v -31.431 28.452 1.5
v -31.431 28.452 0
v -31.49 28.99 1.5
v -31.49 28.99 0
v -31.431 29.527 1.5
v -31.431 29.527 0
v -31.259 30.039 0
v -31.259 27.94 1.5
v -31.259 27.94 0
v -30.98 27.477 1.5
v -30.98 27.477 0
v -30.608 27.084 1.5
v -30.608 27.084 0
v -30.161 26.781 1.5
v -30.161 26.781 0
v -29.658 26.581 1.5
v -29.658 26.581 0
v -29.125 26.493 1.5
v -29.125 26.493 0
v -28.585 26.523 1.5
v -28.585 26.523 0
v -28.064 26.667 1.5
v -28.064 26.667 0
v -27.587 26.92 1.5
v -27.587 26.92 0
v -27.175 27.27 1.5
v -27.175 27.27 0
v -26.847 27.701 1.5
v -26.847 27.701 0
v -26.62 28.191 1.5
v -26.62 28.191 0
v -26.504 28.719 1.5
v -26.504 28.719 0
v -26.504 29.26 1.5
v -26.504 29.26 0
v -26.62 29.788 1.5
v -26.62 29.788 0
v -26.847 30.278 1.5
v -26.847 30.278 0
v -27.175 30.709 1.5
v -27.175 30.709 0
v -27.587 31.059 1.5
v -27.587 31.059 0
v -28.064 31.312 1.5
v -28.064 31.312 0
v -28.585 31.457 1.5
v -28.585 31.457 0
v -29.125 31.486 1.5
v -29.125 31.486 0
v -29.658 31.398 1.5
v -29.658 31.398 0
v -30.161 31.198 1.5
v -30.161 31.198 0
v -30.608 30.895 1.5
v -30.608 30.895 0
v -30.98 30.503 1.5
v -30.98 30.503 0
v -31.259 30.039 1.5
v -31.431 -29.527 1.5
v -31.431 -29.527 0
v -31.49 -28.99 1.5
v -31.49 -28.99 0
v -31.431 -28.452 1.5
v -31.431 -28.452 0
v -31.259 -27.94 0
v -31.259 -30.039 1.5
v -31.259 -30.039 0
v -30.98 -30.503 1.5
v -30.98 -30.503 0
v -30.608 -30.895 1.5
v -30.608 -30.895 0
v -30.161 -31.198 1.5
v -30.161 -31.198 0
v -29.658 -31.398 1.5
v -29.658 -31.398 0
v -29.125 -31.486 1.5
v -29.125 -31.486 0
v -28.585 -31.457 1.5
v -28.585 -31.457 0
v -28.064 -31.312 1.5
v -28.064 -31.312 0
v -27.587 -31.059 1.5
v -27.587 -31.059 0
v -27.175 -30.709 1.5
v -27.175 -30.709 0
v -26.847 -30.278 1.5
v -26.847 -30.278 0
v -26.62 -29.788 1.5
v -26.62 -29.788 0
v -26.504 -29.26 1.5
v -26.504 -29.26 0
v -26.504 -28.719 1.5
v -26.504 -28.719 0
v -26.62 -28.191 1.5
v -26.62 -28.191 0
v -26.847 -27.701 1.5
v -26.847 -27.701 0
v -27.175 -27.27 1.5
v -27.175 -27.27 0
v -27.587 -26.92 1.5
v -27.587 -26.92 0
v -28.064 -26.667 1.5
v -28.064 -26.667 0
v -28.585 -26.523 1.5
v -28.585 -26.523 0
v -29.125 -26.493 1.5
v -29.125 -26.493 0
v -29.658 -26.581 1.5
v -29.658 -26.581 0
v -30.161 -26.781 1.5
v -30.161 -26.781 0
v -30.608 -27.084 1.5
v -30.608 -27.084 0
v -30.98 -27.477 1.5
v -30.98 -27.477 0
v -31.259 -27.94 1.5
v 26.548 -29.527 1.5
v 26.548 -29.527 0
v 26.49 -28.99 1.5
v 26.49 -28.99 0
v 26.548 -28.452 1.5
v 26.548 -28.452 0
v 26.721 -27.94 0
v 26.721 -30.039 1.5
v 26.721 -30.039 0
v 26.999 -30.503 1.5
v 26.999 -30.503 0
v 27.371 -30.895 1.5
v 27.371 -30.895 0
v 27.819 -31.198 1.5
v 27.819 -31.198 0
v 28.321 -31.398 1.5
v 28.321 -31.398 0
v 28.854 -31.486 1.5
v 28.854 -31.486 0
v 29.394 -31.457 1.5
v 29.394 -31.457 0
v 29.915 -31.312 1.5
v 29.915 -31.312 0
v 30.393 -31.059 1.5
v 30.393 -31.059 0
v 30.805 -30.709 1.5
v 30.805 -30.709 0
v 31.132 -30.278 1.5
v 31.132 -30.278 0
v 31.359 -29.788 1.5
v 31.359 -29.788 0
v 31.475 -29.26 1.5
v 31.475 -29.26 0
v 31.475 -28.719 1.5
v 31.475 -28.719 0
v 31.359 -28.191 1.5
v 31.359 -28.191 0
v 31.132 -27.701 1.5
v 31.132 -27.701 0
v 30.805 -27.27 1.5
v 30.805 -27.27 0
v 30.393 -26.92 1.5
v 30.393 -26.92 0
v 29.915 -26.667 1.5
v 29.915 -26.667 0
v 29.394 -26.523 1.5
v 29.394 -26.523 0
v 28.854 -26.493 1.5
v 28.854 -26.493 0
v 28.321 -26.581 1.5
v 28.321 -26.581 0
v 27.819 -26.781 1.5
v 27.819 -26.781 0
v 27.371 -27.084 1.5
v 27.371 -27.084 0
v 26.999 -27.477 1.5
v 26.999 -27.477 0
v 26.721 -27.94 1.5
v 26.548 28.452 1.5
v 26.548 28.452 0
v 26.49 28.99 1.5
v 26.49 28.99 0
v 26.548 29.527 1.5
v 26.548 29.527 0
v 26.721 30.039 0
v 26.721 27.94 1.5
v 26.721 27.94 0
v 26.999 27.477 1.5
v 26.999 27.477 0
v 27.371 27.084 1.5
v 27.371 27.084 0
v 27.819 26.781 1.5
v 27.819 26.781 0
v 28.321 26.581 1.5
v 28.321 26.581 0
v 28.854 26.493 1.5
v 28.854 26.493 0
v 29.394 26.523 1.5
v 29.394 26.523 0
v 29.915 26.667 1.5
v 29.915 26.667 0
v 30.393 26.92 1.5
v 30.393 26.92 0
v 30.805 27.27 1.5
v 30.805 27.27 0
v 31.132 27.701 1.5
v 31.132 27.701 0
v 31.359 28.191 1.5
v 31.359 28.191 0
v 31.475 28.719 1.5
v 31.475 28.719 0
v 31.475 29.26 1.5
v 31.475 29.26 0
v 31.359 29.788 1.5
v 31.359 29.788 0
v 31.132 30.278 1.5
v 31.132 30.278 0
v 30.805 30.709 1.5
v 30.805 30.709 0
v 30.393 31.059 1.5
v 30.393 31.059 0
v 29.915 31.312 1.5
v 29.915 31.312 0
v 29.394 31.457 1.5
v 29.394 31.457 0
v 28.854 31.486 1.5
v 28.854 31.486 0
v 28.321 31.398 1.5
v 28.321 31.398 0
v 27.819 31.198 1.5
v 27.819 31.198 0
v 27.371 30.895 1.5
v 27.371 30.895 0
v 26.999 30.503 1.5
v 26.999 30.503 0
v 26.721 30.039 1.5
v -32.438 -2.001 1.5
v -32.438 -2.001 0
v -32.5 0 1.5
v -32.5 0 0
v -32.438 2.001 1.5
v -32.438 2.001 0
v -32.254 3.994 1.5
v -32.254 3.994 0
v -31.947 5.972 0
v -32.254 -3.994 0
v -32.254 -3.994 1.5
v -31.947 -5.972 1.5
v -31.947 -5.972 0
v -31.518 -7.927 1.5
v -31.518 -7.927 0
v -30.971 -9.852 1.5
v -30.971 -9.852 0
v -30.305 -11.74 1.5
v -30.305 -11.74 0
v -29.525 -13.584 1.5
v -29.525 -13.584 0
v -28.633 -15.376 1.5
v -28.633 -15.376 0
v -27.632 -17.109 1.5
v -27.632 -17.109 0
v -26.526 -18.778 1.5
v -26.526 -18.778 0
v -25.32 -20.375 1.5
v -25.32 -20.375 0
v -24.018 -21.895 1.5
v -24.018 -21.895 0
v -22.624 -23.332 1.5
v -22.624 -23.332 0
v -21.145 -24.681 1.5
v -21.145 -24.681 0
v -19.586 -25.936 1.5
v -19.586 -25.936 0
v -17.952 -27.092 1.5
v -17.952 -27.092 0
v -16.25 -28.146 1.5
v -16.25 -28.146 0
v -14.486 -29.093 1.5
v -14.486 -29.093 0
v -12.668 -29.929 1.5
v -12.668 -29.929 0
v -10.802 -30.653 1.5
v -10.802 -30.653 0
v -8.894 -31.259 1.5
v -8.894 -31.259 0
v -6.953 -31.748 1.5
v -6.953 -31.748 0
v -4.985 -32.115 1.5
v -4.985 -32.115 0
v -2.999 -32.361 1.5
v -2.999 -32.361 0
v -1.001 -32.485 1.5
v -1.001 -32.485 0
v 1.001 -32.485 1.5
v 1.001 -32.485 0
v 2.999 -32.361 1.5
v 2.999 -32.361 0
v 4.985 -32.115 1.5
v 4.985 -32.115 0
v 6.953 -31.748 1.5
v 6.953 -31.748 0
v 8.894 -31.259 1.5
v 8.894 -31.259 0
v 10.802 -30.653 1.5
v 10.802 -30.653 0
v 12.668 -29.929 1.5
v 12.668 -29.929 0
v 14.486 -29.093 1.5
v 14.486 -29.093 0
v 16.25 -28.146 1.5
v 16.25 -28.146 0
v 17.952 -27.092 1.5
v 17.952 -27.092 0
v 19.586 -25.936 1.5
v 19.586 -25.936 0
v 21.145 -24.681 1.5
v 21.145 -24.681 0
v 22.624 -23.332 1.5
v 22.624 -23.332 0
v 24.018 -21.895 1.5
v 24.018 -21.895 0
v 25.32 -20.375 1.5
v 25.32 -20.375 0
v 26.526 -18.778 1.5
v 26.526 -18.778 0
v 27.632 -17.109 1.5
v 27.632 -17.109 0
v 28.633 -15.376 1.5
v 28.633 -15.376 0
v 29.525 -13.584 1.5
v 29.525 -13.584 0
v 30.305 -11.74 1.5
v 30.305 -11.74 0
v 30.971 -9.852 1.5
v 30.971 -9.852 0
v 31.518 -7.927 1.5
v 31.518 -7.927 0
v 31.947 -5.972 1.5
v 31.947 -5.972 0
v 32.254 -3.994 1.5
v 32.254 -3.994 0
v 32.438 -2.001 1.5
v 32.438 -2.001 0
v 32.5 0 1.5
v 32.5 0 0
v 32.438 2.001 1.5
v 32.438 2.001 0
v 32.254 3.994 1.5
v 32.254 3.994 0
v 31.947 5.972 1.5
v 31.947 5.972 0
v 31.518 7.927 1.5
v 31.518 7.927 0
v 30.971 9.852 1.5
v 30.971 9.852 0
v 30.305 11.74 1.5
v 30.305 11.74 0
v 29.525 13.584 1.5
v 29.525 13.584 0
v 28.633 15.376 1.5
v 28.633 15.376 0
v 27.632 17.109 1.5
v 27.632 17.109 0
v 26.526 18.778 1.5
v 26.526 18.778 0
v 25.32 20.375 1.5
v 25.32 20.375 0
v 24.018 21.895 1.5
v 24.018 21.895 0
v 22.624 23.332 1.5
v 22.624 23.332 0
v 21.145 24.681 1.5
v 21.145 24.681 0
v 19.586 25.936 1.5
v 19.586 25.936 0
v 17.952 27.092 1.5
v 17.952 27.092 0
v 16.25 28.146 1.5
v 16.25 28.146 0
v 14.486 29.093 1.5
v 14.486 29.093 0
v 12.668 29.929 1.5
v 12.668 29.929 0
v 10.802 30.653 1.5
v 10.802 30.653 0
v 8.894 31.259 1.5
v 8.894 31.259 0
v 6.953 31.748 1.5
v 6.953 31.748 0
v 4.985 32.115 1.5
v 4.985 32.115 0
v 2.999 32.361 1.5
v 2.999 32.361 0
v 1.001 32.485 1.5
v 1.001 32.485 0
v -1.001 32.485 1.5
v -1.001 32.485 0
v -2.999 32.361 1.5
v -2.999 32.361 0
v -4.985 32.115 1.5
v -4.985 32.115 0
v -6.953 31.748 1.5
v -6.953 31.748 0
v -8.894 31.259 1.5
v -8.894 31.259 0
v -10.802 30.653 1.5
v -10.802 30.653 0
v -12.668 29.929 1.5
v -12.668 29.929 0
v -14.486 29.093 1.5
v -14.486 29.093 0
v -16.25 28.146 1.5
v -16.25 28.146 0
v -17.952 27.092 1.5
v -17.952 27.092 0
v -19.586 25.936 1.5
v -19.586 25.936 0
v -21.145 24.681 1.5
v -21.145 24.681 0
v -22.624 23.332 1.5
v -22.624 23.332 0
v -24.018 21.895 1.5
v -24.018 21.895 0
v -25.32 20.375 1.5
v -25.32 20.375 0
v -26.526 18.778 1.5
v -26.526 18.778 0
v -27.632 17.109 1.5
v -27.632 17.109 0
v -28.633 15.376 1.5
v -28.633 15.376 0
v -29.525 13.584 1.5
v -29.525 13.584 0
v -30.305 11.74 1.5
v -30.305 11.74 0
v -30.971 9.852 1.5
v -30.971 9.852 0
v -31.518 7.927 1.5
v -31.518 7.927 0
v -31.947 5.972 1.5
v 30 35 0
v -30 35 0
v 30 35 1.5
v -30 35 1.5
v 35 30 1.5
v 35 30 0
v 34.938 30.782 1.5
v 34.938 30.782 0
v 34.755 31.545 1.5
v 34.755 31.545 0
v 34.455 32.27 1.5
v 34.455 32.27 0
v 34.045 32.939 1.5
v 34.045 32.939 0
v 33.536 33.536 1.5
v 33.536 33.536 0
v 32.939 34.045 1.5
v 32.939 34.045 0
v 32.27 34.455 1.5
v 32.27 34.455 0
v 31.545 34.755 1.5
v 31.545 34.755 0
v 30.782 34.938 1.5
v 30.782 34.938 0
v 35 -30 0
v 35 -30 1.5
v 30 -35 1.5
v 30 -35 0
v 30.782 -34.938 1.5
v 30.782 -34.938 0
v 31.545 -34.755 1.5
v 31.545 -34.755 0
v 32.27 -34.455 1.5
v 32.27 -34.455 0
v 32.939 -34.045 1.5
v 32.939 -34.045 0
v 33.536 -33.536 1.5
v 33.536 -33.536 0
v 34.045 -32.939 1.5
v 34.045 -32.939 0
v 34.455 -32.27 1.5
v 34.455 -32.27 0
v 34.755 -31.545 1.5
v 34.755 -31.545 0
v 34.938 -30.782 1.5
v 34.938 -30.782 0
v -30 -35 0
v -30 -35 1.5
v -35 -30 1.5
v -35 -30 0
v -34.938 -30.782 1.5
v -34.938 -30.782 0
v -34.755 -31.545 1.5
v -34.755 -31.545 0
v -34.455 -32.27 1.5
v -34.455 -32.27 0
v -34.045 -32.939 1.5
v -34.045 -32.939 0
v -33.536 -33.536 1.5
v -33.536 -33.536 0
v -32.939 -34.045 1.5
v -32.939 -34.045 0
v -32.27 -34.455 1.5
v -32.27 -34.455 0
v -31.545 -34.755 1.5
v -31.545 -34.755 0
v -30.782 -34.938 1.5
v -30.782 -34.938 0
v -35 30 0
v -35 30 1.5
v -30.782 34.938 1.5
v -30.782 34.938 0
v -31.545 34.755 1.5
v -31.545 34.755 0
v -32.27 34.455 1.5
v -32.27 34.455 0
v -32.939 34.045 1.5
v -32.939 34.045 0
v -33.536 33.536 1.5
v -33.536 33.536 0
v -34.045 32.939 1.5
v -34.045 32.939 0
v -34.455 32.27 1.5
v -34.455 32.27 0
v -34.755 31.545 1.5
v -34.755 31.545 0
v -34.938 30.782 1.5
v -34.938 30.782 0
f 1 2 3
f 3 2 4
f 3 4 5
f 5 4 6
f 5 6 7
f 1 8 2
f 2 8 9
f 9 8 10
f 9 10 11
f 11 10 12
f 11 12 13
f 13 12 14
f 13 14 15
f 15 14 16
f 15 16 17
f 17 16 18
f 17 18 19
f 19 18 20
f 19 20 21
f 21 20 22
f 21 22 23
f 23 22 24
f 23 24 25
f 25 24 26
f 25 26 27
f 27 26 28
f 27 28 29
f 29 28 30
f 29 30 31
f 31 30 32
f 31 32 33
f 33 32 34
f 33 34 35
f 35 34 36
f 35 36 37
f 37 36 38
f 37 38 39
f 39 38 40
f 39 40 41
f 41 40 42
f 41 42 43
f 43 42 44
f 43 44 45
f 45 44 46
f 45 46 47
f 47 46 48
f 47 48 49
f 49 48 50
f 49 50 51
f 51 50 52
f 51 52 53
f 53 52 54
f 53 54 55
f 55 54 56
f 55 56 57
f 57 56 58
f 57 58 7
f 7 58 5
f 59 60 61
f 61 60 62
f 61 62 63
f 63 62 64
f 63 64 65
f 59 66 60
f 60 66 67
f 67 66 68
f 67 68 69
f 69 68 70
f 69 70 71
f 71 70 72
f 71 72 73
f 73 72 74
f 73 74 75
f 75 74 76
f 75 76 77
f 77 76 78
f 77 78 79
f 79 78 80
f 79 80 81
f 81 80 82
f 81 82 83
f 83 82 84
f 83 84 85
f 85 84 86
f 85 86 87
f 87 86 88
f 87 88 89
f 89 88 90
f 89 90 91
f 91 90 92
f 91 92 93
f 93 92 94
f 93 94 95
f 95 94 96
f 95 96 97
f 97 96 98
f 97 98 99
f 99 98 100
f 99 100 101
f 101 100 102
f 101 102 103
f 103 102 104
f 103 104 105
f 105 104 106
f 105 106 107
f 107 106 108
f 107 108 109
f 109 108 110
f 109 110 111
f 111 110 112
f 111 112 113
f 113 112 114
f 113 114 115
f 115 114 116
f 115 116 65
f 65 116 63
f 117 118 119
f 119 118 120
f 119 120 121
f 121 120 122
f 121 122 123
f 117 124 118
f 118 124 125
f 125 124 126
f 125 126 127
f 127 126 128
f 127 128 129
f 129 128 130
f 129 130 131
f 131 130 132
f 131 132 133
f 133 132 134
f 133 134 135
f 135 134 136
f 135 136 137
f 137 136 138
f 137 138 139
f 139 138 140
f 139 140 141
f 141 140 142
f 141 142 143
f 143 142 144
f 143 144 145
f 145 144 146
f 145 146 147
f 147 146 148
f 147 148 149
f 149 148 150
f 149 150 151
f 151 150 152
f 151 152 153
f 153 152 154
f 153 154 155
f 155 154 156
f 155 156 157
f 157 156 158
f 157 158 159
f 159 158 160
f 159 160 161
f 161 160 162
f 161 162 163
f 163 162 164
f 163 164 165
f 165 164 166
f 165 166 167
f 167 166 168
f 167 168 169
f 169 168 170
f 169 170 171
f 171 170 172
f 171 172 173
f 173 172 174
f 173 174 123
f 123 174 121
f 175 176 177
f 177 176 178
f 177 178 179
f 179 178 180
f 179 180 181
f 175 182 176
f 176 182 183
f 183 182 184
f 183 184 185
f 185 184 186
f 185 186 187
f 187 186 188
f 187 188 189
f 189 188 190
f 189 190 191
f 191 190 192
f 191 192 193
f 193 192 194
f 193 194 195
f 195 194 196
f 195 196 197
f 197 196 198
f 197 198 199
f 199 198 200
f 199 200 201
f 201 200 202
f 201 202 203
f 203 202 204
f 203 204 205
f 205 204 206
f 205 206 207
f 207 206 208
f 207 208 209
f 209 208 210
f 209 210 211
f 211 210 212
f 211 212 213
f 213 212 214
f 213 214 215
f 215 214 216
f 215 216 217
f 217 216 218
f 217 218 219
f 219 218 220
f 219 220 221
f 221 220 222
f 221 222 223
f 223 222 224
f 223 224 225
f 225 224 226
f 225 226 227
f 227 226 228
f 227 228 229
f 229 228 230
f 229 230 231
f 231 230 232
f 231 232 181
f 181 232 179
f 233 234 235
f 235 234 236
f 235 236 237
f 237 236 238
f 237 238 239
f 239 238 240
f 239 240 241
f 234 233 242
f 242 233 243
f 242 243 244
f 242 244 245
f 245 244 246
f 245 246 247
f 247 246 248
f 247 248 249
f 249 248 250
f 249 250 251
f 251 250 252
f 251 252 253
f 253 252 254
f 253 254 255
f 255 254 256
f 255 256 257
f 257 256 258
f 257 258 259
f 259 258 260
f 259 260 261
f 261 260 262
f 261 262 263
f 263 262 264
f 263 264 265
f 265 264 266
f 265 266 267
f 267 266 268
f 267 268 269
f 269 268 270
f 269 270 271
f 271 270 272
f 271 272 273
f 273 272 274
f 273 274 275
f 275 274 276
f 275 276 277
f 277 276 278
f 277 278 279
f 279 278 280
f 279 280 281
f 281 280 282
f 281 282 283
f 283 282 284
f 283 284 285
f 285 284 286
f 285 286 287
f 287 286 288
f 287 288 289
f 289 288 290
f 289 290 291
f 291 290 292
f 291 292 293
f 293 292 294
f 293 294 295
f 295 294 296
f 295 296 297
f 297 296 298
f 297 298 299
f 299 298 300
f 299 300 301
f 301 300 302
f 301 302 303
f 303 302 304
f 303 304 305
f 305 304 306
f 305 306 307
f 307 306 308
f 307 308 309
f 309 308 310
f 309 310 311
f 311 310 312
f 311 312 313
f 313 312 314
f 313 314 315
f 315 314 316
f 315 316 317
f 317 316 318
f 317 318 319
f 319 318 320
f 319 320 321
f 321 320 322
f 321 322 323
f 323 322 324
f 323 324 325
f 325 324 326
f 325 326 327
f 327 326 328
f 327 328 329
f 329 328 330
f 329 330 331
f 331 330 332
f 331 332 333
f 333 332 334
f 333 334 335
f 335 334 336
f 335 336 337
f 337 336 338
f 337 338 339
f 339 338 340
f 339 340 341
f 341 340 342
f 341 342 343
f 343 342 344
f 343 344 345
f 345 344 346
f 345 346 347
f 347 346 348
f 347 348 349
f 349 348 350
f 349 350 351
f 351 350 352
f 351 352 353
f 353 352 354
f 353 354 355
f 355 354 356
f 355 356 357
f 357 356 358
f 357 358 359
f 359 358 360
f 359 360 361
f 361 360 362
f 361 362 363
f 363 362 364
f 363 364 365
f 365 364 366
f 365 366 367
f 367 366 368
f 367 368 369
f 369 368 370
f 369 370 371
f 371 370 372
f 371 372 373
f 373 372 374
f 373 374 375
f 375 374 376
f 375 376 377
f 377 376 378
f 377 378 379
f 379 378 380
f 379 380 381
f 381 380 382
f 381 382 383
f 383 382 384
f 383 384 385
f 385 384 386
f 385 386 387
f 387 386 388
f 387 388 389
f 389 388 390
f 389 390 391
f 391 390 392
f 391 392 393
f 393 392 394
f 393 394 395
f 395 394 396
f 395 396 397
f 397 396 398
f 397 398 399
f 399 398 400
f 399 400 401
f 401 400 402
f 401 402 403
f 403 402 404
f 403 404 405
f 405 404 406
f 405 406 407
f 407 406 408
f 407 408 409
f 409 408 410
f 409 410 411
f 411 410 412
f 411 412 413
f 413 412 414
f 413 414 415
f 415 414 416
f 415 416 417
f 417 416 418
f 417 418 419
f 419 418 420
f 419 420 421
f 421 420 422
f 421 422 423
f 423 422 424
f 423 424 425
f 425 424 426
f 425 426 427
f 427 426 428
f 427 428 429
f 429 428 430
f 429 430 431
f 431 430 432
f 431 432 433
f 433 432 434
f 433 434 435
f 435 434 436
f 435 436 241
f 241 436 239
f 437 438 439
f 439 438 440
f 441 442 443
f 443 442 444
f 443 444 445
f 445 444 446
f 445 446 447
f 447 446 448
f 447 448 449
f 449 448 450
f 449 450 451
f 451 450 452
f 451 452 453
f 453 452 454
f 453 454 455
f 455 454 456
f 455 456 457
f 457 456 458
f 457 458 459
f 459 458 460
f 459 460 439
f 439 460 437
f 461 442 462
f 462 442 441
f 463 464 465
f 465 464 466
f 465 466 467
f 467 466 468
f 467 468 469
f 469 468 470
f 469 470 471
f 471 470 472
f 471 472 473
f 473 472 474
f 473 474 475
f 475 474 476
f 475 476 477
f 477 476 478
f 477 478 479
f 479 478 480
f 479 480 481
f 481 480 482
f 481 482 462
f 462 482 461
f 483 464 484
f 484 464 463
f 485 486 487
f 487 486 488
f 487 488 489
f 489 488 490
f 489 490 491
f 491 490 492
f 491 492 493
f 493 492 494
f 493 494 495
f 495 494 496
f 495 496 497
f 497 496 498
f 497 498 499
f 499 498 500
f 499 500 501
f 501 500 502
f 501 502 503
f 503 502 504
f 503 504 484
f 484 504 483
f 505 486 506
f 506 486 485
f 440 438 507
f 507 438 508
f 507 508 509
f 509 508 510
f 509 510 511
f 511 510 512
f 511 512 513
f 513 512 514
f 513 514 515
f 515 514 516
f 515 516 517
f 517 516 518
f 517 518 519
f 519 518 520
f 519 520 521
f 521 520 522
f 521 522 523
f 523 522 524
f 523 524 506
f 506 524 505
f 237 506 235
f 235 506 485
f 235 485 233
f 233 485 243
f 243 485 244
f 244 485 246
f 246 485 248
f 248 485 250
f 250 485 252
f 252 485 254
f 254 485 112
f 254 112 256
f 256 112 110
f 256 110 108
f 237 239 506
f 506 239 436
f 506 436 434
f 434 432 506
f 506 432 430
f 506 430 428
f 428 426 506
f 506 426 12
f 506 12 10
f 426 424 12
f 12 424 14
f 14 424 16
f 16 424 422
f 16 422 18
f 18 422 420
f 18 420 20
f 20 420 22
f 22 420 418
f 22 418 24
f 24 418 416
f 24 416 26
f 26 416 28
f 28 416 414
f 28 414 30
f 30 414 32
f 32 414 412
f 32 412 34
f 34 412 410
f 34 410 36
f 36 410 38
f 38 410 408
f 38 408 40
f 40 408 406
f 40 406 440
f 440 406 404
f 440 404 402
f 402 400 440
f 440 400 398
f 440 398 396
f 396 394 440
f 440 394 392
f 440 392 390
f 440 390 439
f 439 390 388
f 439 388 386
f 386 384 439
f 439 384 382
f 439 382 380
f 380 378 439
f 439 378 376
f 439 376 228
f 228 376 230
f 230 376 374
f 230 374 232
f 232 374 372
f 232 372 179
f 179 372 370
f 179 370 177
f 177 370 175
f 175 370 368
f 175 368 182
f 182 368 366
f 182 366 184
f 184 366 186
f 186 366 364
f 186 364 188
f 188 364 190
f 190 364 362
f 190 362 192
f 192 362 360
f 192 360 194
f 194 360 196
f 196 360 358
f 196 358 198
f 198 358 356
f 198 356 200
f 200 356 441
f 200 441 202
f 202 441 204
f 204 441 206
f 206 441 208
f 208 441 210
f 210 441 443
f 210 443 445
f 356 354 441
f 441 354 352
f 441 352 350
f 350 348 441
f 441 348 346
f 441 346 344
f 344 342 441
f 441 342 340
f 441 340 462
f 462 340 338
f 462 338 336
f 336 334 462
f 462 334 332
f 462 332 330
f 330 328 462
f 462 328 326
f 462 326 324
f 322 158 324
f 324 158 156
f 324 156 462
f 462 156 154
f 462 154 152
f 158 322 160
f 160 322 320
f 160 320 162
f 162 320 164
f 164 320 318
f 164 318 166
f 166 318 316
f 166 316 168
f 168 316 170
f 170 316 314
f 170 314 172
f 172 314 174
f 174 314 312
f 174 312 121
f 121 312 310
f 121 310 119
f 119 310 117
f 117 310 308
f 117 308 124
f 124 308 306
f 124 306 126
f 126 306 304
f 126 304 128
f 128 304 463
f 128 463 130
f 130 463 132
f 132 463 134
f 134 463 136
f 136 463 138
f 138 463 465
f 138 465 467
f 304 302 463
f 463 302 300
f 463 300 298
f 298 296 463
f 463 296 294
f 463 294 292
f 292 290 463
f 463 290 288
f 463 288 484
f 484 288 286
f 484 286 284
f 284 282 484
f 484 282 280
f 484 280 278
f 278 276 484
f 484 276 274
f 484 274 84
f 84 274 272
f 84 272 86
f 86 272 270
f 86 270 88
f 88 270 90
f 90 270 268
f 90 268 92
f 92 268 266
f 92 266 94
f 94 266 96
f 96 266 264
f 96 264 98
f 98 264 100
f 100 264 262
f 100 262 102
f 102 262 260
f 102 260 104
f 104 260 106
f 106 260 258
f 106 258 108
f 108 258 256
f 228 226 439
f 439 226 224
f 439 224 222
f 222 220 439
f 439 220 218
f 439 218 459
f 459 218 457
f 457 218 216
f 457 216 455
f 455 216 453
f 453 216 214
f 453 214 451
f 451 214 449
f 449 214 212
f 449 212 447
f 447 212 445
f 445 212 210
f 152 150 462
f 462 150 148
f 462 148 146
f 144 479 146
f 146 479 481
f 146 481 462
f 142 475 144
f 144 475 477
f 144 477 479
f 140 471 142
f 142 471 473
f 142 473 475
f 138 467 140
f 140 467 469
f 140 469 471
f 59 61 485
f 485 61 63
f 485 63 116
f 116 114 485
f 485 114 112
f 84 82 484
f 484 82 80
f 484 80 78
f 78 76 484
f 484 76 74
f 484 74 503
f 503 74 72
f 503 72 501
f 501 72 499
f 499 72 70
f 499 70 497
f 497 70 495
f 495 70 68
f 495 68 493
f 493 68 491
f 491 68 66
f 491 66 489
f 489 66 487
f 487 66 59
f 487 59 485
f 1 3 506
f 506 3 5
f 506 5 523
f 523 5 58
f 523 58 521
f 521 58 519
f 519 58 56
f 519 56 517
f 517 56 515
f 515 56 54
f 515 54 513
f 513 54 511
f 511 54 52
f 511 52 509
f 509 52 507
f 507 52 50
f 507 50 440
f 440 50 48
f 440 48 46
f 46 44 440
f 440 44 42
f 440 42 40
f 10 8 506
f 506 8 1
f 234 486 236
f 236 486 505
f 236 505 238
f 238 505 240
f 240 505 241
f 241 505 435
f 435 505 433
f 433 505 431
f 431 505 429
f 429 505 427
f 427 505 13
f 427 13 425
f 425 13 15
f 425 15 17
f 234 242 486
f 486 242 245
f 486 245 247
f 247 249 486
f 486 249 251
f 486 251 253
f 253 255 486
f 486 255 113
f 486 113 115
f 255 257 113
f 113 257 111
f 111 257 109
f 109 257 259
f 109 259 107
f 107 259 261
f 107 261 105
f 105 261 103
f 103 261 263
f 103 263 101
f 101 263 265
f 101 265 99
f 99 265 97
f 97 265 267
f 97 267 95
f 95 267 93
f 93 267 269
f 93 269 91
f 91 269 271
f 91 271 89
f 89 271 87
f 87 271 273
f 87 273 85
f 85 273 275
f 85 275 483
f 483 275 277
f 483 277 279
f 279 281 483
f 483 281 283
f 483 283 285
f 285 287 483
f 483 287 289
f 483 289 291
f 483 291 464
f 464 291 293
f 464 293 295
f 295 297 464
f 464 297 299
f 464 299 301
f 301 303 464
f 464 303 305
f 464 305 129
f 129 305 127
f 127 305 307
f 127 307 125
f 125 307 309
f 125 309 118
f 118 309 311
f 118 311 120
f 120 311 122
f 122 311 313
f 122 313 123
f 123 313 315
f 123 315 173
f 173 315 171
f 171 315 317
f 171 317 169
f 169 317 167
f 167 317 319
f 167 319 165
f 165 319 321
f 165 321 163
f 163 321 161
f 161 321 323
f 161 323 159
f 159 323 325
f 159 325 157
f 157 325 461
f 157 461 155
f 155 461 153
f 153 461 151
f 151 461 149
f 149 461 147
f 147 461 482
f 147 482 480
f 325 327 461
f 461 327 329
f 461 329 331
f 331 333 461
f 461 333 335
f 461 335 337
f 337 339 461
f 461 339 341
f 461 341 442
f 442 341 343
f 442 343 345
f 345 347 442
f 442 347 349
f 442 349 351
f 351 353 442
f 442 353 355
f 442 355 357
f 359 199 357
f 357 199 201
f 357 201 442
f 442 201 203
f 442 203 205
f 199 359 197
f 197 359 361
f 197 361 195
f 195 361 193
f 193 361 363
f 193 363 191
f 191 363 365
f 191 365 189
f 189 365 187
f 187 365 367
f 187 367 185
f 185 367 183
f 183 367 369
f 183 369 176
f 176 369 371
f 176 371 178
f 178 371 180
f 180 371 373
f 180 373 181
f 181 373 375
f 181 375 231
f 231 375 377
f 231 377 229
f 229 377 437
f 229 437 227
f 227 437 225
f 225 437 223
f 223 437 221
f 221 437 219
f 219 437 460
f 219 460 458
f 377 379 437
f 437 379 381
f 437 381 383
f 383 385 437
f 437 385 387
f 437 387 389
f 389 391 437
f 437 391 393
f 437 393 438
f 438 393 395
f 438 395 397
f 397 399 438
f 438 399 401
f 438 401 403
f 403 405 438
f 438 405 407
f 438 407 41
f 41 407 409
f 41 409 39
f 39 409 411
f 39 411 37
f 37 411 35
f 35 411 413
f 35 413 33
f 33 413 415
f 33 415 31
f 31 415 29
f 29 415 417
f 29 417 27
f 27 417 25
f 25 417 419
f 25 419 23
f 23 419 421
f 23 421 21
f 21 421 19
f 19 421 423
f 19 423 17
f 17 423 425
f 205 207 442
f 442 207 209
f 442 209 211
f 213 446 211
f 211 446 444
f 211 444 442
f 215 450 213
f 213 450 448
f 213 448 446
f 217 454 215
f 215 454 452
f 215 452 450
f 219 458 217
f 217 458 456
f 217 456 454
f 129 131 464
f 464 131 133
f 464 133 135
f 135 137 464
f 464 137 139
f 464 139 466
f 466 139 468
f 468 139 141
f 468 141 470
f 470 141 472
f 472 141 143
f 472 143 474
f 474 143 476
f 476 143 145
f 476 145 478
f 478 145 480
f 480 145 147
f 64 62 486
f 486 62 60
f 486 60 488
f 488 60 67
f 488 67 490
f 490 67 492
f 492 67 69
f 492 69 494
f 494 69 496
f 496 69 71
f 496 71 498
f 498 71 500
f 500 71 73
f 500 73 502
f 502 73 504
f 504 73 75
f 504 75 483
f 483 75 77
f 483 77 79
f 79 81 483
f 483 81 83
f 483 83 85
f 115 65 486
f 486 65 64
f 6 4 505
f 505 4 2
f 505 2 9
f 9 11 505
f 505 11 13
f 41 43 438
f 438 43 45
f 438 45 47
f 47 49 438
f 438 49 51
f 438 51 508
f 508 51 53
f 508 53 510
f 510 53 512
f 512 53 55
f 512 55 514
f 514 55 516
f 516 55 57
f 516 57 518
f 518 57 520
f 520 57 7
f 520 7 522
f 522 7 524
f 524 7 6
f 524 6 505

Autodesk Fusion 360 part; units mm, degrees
sketch "Sketch1" plane through (0, 0, 0) normal (0, 0, 1) x (1, 0, 0)
  line L0 (30, -35) -> (-30, -35)
  line L1 (-35, -30) -> (-35, 30)
  line L2 (-30, 35) -> (30, 35)
  line L3 (35, 30) -> (35, -30)
  line L4 (35, -35) -> (-35, 35) construction
  line L5 (-35, -35) -> (35, 35) construction
  circle A0 centre (0, 0) radius 32.5
  circle A1 centre (-28.9896, 28.9896) radius 2.5
  arc A2 (-30, 35) -> (-35, 30) centre (-30, 30) ccw
  arc A3 (35, 30) -> (30, 35) centre (30, 30) ccw
  arc A4 (30, -35) -> (35, -30) centre (30, -30) ccw
  arc A5 (-35, -30) -> (-30, -35) centre (-30, -30) ccw
  line L6 (0, 35) -> (0, -35) construction
  line L7 (-35, 0) -> (35, 0) construction
  circle A6 centre (28.9896, 28.9896) radius 2.5
  circle A7 centre (-28.9896, -28.9896) radius 2.5
  circle A8 centre (28.9896, -28.9896) radius 2.5
  dimension "d1" = 70
  dimension "d2" = 70
  dimension "d3" = 65
  dimension "d4" = 5
  dimension "d5" = 8.5
  dimension "d6" = 5
  dimension "d7" = 5
  dimension "d8" = 5
  dimension "d9" = 5
extrude "Extrude1" add sketch "Sketch1" along normal blind 1.5
